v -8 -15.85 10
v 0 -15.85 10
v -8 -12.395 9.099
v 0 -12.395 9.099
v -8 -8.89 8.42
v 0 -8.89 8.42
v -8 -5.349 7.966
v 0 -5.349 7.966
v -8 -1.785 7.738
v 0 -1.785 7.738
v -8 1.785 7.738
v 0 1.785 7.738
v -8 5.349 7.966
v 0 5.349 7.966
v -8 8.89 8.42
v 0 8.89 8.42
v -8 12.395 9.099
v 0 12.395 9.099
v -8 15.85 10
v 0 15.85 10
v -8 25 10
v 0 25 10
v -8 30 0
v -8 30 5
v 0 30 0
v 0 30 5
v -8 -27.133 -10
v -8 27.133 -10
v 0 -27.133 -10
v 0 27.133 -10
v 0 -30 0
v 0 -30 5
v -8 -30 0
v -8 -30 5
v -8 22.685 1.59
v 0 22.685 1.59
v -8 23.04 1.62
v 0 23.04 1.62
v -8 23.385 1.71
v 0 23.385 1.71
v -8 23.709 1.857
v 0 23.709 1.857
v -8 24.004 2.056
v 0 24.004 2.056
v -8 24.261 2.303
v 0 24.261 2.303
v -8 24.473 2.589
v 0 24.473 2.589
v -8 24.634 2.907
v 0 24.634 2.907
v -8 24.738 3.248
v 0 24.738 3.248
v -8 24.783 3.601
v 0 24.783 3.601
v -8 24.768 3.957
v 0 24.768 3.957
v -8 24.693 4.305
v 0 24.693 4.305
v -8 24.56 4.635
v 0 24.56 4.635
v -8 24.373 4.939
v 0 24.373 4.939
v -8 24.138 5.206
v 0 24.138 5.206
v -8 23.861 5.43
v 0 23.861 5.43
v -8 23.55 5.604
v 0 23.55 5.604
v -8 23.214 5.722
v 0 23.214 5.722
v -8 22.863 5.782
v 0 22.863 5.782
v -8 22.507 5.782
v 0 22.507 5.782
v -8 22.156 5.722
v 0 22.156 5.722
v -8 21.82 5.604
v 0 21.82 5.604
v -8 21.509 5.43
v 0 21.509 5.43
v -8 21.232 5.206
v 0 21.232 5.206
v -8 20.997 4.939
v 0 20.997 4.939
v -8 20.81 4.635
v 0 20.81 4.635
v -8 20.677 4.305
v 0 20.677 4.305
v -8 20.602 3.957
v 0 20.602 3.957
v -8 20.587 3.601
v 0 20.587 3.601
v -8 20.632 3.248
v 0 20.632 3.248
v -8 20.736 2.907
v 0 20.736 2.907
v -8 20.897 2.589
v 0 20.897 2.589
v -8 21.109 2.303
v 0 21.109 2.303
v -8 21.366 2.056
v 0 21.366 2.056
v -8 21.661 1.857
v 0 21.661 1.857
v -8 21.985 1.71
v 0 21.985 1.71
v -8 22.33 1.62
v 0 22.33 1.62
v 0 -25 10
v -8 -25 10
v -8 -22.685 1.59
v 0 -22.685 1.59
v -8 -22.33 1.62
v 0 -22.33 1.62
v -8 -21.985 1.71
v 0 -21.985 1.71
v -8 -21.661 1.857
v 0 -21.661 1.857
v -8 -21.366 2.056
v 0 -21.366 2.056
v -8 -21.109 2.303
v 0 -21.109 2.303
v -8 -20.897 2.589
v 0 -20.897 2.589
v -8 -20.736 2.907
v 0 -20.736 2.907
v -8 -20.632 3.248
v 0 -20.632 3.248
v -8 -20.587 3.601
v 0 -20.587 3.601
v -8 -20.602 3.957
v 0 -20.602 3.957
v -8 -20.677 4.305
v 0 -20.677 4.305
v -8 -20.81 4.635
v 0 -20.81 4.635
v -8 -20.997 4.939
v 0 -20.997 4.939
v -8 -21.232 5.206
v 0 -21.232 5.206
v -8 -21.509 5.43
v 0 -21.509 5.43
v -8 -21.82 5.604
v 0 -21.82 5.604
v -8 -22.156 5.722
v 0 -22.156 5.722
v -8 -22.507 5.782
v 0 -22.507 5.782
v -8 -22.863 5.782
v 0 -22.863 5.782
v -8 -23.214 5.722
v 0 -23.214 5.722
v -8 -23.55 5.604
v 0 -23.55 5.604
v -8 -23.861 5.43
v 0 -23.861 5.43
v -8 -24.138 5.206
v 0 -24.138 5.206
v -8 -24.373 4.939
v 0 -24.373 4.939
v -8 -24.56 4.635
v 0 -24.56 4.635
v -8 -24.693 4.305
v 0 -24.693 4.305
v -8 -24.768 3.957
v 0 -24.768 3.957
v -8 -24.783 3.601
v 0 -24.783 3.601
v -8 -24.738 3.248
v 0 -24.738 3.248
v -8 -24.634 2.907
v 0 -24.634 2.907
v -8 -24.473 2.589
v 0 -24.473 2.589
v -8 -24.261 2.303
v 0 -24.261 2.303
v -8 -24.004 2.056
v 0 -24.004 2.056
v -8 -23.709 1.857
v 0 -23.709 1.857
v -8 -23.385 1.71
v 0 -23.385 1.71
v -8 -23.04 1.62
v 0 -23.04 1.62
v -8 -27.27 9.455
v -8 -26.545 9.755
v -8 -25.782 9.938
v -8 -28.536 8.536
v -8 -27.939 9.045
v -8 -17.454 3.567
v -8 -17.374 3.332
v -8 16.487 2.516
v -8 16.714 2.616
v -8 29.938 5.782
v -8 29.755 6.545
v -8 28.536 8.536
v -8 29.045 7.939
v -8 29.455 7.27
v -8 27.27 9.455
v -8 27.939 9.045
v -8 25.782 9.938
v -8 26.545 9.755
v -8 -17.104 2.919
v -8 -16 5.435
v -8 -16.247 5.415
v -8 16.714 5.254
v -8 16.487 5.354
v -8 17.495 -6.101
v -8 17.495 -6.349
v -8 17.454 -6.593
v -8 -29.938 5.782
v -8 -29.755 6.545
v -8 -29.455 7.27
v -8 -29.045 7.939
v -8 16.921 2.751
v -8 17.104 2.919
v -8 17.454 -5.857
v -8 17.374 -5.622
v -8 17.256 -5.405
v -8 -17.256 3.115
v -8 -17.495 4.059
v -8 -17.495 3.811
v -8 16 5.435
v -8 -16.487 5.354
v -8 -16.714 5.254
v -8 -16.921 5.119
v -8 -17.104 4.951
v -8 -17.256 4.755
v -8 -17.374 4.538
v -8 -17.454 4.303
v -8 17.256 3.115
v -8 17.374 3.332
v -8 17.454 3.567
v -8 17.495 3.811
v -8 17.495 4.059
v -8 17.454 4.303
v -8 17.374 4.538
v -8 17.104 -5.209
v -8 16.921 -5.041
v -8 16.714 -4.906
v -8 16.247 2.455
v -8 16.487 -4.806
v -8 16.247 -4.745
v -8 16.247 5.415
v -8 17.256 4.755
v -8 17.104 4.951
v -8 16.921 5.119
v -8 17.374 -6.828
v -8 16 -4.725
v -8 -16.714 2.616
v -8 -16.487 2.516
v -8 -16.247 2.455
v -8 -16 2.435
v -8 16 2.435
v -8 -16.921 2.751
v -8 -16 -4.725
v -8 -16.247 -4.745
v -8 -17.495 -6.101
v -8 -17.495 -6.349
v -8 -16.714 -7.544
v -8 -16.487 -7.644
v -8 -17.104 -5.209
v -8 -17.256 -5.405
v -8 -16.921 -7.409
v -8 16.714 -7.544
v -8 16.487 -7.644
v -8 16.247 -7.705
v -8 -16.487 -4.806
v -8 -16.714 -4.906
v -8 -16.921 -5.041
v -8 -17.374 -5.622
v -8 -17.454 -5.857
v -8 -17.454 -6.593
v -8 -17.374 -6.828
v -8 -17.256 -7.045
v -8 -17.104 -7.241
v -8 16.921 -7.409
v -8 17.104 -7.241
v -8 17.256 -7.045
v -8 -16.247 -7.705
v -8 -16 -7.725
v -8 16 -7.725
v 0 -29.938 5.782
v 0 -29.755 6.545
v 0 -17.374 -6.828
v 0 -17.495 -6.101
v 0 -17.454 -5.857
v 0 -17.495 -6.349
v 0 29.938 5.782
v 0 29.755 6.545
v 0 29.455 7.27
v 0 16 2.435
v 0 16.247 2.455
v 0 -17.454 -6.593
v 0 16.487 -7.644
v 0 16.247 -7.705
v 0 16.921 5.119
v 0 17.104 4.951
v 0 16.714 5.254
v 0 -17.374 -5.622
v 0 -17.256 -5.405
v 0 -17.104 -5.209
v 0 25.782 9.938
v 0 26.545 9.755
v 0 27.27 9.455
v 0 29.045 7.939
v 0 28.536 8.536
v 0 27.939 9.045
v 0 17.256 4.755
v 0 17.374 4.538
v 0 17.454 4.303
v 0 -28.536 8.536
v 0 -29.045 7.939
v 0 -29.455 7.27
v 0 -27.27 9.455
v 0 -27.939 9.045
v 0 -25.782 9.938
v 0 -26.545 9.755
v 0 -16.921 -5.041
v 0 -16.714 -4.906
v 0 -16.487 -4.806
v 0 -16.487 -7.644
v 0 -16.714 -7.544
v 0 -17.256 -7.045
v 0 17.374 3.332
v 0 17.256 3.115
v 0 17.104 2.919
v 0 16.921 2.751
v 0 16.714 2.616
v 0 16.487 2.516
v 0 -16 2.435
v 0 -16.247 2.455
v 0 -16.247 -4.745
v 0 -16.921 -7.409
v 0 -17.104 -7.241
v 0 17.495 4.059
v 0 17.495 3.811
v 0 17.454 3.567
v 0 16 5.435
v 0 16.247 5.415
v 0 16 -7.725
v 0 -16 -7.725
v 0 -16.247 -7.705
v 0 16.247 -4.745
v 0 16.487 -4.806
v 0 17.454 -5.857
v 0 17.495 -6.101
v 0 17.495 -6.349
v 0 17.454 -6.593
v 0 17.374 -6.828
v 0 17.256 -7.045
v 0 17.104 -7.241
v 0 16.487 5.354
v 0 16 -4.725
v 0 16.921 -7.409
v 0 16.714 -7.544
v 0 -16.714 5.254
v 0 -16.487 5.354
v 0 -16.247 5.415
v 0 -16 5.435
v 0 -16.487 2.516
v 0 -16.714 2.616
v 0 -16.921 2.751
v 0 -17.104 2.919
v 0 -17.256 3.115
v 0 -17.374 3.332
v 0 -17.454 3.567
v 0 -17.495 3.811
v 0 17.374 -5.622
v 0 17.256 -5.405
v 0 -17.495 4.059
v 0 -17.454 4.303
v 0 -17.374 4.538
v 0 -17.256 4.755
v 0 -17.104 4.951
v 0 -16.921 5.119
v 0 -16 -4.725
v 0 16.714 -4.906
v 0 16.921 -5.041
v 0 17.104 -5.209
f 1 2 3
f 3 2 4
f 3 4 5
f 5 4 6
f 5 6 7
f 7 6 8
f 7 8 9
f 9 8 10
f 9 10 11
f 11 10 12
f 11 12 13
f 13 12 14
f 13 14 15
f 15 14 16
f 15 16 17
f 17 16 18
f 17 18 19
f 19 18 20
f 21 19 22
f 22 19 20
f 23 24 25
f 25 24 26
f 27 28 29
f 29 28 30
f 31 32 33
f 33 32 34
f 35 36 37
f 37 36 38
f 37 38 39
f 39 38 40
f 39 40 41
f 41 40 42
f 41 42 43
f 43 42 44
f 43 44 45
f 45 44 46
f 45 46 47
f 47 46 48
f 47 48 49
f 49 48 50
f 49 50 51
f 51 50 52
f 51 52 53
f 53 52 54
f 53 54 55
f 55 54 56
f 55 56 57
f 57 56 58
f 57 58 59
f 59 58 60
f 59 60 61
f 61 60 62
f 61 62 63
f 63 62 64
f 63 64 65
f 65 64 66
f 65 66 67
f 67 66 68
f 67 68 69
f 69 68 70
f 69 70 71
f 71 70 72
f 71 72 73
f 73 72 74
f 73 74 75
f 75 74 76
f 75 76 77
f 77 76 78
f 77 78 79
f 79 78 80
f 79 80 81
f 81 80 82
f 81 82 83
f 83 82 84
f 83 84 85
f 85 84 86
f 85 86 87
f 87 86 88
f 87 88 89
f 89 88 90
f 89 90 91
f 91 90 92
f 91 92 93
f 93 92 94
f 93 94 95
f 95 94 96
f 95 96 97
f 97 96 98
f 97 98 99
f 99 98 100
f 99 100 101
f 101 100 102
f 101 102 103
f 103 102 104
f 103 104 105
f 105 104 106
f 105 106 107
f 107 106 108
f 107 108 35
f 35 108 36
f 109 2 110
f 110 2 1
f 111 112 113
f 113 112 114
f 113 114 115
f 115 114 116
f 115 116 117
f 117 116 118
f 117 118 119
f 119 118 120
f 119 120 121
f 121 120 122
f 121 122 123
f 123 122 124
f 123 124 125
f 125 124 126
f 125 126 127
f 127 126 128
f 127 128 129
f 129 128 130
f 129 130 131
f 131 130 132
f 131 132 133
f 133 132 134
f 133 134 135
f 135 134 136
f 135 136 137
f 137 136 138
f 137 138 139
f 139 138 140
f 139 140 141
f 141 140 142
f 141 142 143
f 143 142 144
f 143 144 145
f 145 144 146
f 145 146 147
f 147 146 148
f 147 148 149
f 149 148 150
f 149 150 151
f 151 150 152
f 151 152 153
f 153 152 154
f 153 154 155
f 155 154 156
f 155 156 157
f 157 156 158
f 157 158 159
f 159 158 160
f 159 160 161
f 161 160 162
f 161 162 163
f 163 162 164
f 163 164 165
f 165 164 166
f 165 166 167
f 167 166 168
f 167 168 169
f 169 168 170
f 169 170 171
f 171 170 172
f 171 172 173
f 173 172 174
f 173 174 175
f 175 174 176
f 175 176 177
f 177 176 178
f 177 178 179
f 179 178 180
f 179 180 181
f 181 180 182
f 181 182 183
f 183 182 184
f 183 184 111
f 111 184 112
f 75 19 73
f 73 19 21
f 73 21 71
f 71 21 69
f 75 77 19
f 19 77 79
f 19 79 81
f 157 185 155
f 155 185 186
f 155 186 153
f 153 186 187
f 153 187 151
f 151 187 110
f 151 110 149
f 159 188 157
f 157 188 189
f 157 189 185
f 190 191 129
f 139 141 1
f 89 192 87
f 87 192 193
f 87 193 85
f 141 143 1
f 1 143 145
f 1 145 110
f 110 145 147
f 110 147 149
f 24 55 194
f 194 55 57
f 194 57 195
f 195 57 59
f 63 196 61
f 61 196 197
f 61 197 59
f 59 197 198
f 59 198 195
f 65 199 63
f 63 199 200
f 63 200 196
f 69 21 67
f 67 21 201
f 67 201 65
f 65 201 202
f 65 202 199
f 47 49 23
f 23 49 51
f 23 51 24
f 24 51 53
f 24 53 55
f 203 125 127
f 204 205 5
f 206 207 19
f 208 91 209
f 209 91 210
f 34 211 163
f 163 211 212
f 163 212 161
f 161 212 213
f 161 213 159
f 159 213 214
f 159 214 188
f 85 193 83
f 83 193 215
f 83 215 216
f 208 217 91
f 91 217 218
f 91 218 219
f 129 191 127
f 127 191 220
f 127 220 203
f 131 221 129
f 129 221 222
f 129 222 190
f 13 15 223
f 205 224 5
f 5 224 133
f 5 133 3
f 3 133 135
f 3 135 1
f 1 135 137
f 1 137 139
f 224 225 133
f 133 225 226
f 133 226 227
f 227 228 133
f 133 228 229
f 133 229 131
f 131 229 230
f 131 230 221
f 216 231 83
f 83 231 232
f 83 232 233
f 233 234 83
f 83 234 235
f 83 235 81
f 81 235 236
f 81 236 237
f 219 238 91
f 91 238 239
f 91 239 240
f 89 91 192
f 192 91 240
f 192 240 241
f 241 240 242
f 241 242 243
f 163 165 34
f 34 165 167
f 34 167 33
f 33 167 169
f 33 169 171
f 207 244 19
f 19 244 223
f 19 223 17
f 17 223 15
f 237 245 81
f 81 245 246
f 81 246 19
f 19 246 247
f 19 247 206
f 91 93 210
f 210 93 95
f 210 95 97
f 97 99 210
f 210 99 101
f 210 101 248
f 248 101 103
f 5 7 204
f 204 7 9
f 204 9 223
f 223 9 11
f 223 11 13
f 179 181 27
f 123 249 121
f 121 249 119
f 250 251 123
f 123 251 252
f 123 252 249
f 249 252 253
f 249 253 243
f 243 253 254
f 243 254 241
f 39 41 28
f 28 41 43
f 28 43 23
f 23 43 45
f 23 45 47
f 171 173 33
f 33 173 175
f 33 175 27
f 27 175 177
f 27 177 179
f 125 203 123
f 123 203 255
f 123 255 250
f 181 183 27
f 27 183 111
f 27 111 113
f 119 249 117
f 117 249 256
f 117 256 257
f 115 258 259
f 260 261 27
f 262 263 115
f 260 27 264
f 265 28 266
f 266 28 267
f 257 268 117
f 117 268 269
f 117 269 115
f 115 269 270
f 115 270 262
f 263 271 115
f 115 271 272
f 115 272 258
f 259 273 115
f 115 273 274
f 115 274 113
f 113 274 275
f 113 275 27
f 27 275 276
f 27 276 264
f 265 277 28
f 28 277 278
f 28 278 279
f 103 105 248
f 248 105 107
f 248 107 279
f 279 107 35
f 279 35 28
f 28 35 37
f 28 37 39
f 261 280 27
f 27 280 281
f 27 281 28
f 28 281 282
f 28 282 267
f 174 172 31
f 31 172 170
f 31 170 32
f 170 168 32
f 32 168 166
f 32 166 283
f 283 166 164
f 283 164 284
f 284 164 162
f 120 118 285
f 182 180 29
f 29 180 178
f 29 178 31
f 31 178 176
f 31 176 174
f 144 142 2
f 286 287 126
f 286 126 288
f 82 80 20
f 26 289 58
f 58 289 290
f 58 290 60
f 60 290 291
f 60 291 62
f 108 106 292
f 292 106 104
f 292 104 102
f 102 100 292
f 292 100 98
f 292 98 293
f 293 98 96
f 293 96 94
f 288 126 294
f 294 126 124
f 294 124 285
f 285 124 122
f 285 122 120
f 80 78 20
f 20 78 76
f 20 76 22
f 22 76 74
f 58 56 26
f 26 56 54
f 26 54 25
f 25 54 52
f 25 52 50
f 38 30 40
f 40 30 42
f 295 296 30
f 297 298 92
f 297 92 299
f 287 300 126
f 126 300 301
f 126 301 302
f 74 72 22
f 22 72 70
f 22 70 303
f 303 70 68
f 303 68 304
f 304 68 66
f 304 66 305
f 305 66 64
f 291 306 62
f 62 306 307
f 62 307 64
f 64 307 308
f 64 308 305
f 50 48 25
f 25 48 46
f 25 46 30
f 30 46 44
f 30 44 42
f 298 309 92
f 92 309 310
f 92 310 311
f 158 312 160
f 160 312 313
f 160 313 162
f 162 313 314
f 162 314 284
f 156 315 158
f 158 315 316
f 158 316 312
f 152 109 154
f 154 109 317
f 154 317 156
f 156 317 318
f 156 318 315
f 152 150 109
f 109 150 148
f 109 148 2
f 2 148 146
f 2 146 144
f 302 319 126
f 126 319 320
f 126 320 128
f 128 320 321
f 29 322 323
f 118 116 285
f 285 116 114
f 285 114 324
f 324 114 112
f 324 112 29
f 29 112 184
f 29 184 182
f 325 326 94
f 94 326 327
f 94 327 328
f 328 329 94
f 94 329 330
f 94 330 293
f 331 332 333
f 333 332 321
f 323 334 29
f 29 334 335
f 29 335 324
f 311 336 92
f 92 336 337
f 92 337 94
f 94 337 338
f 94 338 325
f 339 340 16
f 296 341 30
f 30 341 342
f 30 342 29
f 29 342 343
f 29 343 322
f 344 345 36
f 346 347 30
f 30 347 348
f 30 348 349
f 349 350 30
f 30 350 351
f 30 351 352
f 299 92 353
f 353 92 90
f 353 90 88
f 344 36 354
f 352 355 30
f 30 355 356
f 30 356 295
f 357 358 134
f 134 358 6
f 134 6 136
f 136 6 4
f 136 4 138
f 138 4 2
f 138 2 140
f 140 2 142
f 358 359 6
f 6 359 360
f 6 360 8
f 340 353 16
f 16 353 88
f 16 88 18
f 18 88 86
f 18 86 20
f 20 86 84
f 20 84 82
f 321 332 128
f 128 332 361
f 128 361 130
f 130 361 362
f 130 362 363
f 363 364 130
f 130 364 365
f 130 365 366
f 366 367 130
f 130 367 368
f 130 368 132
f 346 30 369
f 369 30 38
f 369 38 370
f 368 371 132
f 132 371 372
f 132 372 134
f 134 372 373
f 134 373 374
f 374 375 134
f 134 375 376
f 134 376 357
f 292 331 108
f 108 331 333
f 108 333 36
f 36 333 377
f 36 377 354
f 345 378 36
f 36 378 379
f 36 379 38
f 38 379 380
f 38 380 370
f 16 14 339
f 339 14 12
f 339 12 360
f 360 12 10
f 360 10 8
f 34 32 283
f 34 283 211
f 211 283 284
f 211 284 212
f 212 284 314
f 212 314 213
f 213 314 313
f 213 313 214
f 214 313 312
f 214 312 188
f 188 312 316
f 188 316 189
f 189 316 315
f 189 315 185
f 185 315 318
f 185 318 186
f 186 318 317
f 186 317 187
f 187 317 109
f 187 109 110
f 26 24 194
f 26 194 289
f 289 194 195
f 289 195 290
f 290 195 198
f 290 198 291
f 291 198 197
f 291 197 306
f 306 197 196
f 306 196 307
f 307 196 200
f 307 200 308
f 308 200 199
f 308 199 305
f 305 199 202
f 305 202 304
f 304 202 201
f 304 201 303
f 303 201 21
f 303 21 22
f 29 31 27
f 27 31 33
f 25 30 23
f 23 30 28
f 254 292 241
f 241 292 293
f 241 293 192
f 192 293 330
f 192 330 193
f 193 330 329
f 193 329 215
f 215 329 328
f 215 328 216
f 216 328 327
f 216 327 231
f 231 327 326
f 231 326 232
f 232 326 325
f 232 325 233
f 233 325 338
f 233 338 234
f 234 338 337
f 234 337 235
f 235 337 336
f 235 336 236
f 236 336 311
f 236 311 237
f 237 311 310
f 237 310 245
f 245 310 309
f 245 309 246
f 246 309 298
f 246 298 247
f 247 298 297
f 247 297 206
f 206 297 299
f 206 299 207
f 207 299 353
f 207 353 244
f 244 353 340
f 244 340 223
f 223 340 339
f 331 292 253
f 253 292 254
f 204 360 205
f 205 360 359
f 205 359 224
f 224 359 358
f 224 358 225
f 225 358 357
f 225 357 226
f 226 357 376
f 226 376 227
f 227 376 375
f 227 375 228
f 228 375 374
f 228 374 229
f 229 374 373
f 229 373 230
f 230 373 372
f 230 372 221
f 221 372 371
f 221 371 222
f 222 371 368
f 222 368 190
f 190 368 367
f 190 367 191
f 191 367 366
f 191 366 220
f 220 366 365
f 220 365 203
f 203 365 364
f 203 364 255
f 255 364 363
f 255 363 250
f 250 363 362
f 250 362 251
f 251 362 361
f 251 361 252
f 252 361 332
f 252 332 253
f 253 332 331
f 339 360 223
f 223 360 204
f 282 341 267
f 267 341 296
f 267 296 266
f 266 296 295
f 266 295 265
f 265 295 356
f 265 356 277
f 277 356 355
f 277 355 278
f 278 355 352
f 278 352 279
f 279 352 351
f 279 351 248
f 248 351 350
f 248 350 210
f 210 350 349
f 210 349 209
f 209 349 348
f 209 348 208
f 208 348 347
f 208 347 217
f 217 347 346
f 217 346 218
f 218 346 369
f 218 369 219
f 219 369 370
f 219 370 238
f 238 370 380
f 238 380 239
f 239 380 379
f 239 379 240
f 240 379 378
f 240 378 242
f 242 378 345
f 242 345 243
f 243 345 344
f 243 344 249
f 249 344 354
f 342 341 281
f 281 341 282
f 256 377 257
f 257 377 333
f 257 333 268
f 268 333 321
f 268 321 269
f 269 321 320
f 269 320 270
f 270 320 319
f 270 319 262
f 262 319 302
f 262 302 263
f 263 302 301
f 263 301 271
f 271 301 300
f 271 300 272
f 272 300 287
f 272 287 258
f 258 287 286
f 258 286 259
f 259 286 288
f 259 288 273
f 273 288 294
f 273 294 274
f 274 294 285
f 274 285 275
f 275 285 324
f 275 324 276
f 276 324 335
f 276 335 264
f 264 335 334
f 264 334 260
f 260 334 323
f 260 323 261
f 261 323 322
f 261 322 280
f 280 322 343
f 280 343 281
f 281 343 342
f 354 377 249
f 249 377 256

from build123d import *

# Parameters (mm, degrees)
SKETCH1_R             = 2.1
BOSS_EXTRUDE1_DEPTH   = 8
FILLET1_R             = 5
CHAMFER1_SIZE         = 10
CHAMFER1_SIZE2        = 2.867453858
CHAMFER1_PART_2_SIZE  = 10
CHAMFER1_PART_2_SIZE2 = 2.867453858
CUT_EXTRUDE1_REACH    = 10


with BuildPart() as part:
    # Sketch1 → Boss-Extrude1 (new body)
    with BuildSketch(Plane(origin=(0, 0, 0), x_dir=(0, 0, -1), z_dir=(1, 0, 0))):
        with BuildLine():
            Line((10, 30), (-10, 30))
            Line((-10, 30), (-10, 15.850422707))
            ThreePointArc((-10, 15.850422707), (-8.2854567, 8.007496488), (-7.71, 0))
            ThreePointArc((-7.71, 0), (-8.2854567, -8.007496488), (-10, -15.850422707))
            Line((-10, -15.850422707), (-10, -30))
            Line((-10, -30), (10, -30))
            Line((10, -30), (10, 30))
        make_face()
        with Locations((-3.69, -22.685)):
            Circle(SKETCH1_R, mode=Mode.SUBTRACT)
        with Locations((-3.69, 22.685)):
            Circle(SKETCH1_R, mode=Mode.SUBTRACT)
    extrude(amount=-BOSS_EXTRUDE1_DEPTH)

    # Fillet1
    fillet1_edges = [part.edges().sort_by_distance(p)[0] for p in [
        (-4, 30, 10),
        (-4, -30, 10),
    ]]
    fillet(fillet1_edges, radius=FILLET1_R)

    # Chamfer1
    chamfer1_edges = [part.edges().sort_by_distance(p)[0] for p in [
        (-4, 30, -10),
    ]]
    chamfer1_side = [part.faces().sort_by_distance(p)[0] for p in [
        (-4, 30, -2.5),
    ]]
    chamfer(chamfer1_edges, length=CHAMFER1_SIZE, length2=CHAMFER1_SIZE2, reference=chamfer1_side[0])

    # Chamfer1 part 2
    chamfer1_part_2_edges = [part.edges().sort_by_distance(p)[0] for p in [
        (-4, -30, -10),
    ]]
    chamfer1_part_2_side = [part.faces().sort_by_distance(p)[0] for p in [
        (-4, -30, -2.5),
    ]]
    chamfer(chamfer1_part_2_edges, length=CHAMFER1_PART_2_SIZE, length2=CHAMFER1_PART_2_SIZE2, reference=chamfer1_part_2_side[0])

    # Sketch2 → Cut-Extrude1 (cut, up to next)
    with BuildSketch(Plane(origin=(0, 0, 0), x_dir=(0, 0, -1), z_dir=(1, 0, 0)), mode=Mode.PRIVATE) as cut_extrude1_sk1:
        with BuildLine():
            Line((7.725, 16), (7.725, -16))
            ThreePointArc((7.725, -16), (6.225, -17.5), (4.725, -16))
            Line((4.725, -16), (4.725, 16))
            ThreePointArc((4.725, 16), (6.225, 17.5), (7.725, 16))
        make_face()
    cut_extrude1_tool1 = extrude(cut_extrude1_sk1.sketch, amount=-CUT_EXTRUDE1_REACH, mode=Mode.PRIVATE) & part.part
    add(cut_extrude1_tool1.solids().sort_by_distance((0, 0, -6.225))[0], mode=Mode.SUBTRACT)
    # Sketch2 → Cut-Extrude1 (cut, up to next)
    with BuildSketch(Plane(origin=(0, 0, 0), x_dir=(0, 0, -1), z_dir=(1, 0, 0)), mode=Mode.PRIVATE) as cut_extrude1_sk2:
        with BuildLine():
            Line((-5.435, 16), (-5.435, -16))
            ThreePointArc((-5.435, -16), (-3.935, -17.5), (-2.435, -16))
            Line((-2.435, -16), (-2.435, 16))
            ThreePointArc((-2.435, 16), (-3.935, 17.5), (-5.435, 16))
        make_face()
    cut_extrude1_tool2 = extrude(cut_extrude1_sk2.sketch, amount=-CUT_EXTRUDE1_REACH, mode=Mode.PRIVATE) & part.part
    add(cut_extrude1_tool2.solids().sort_by_distance((0, 0, 3.935))[0], mode=Mode.SUBTRACT)


solid = part.part
